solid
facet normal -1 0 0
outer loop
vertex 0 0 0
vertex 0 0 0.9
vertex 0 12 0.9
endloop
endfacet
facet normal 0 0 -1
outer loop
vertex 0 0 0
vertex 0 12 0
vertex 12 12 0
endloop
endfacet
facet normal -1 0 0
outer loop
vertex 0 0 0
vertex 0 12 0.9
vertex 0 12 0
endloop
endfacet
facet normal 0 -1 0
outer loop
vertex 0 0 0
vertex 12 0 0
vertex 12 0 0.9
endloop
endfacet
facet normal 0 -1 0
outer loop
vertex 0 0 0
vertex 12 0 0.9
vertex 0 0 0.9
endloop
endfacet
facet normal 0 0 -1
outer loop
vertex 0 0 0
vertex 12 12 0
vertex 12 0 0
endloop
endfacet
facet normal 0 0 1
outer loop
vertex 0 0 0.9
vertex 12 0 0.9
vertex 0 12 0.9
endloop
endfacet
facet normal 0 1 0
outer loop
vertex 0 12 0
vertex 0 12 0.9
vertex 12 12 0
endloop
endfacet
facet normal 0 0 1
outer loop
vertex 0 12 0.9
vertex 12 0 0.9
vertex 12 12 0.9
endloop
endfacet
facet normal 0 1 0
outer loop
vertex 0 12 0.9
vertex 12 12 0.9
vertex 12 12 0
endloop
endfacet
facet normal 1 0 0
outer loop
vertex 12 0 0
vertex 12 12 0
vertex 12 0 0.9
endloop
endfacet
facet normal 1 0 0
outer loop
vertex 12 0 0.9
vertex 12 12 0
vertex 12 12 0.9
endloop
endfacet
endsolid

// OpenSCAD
/* Warning, this is a very basic generator with a lot of approximation 
input data : [VQFN, PJX, 12x12x0.9mm, 88, , A, C04-00274A]
generated by com.zoubworld.electronics.cad.model3d.Basic
Date : Sun Feb 15 10:50:48 CET 2026
*/

//body
color("black")
translate([0,0,0])
cube([12.0,12.0,0.9], center=false);
